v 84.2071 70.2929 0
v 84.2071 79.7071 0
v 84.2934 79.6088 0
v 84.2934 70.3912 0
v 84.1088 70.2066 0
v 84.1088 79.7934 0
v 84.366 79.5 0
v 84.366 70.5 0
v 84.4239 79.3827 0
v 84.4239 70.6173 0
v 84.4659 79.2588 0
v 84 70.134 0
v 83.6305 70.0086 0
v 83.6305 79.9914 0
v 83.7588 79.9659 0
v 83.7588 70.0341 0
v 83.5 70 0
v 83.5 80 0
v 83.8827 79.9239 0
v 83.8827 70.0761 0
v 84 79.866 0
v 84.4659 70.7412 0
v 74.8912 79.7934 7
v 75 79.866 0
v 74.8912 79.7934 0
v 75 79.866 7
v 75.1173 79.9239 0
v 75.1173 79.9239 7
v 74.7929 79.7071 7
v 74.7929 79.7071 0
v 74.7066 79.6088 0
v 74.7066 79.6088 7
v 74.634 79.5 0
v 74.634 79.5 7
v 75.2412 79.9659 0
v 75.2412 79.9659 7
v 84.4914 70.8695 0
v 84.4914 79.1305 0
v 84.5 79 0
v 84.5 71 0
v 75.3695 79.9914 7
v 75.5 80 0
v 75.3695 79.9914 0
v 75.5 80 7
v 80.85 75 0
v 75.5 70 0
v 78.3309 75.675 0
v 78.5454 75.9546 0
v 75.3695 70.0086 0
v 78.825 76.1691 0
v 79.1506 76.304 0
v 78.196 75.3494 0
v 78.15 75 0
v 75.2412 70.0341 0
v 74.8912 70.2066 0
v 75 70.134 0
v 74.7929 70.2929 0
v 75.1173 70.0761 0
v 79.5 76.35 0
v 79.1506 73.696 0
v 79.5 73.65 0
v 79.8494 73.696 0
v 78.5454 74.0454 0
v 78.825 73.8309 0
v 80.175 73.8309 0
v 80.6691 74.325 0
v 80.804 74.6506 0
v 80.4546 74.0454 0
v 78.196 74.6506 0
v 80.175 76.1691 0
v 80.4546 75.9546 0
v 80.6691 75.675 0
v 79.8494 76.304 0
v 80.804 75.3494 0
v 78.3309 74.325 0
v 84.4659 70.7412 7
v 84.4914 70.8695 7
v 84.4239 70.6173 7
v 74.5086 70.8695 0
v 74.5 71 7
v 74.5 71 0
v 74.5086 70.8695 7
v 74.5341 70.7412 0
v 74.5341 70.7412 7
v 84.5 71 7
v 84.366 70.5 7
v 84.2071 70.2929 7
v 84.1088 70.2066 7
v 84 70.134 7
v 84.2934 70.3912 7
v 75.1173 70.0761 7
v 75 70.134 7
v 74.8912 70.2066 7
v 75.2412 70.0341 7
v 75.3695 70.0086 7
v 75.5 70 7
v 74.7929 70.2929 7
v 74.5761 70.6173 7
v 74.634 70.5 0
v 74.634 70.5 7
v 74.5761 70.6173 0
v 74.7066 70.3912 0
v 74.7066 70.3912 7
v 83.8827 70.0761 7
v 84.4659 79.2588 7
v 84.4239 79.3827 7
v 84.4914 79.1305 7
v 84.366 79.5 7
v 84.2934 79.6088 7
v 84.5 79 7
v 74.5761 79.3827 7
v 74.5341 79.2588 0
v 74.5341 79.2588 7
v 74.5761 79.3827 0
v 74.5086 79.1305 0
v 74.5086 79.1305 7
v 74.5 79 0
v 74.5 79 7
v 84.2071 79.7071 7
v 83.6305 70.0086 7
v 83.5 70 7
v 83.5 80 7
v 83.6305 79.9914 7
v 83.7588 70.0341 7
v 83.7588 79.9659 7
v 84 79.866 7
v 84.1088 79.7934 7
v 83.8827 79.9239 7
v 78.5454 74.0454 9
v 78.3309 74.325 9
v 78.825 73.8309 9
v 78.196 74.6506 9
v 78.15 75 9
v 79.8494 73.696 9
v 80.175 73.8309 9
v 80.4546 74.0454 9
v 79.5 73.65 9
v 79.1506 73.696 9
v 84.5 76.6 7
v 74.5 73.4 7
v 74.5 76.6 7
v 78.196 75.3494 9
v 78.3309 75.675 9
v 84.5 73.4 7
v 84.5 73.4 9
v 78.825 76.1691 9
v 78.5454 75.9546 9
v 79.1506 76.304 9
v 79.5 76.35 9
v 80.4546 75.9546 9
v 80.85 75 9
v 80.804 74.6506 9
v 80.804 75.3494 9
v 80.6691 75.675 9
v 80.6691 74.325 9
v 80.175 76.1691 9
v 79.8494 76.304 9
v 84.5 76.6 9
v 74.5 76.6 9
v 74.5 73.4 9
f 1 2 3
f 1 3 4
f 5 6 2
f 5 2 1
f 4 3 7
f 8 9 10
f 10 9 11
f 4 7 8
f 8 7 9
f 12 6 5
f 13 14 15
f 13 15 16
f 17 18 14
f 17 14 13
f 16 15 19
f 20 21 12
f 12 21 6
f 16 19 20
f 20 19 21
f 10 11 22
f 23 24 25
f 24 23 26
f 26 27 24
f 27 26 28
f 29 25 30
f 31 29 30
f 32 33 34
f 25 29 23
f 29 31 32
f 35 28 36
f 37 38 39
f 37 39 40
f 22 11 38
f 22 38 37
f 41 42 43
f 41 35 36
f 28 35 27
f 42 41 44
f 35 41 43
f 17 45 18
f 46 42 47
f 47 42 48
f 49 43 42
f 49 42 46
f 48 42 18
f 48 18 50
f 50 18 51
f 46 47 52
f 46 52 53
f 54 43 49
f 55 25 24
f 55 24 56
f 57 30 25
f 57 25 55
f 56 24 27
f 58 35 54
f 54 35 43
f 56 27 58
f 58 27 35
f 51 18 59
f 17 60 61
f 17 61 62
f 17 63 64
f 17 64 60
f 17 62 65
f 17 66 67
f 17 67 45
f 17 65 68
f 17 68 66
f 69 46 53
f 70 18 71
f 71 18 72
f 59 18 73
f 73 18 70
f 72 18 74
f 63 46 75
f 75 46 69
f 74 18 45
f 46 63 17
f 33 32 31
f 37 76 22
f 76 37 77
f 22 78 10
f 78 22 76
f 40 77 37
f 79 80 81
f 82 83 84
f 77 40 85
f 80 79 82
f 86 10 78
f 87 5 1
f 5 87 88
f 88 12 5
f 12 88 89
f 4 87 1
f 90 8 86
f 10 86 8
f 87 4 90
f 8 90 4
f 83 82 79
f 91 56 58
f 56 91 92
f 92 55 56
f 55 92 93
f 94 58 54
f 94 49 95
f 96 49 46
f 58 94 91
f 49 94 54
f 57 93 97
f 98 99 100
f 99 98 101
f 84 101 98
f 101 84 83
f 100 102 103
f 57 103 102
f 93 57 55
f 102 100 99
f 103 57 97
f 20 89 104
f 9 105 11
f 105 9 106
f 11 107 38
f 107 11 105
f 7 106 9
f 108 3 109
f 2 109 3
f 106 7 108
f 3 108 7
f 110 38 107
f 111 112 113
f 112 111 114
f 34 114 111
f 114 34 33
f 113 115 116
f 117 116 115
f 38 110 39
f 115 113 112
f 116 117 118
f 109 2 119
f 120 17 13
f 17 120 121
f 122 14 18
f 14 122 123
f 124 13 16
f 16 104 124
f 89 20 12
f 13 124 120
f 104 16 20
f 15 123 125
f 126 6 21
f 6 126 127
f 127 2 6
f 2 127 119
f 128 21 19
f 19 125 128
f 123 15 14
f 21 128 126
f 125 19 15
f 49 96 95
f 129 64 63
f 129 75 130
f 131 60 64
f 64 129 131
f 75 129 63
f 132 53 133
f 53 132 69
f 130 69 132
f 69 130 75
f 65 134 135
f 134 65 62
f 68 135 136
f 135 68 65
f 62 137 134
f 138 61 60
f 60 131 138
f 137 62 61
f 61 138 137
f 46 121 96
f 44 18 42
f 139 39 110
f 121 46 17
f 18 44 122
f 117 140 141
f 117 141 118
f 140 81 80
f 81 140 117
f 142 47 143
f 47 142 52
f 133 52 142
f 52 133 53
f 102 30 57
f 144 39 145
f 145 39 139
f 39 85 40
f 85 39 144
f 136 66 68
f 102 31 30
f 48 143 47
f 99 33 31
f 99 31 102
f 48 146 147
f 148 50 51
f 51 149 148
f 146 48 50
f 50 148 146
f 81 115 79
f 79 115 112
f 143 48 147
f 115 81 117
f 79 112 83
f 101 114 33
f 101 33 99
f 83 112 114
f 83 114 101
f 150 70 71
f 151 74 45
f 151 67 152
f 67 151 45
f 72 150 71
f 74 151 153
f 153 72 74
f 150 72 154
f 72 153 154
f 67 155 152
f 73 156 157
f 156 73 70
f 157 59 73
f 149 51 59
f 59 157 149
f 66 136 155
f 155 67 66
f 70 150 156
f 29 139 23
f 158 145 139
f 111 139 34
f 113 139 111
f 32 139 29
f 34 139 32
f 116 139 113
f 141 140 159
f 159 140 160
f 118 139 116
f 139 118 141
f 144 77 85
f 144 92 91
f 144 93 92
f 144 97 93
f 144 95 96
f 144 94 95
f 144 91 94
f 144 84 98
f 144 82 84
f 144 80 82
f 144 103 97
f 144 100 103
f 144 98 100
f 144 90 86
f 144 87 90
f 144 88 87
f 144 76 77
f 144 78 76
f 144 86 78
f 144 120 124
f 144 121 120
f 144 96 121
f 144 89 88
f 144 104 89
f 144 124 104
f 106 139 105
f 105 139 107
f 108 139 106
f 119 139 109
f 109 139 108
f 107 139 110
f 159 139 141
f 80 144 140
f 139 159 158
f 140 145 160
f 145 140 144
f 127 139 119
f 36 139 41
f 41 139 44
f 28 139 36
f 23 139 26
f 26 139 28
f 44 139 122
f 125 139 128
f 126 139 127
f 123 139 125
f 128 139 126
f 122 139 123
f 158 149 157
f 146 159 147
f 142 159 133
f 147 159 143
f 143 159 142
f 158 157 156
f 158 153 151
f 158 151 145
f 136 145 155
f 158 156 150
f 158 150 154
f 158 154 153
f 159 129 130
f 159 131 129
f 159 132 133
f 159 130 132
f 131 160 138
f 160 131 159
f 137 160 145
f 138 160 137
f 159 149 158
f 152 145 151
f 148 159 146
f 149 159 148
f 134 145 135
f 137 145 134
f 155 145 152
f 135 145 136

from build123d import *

# Parameters (mm, degrees)
BOSS_EXTRUDE1_DEPTH = 7
SKETCH2_W           = 9.999992371
SKETCH2_H           = 3.199996948
BOSS_EXTRUDE2_DEPTH = 2
CUT_EXTRUDE1_DEPTH  = 117.710110959


with BuildPart() as part:
    # Sketch1 → Boss-Extrude1 (new body)
    with BuildSketch(Plane.XY.offset(7)):
        Polygon((84.366027832, 79.5), (84.293357849, 79.608764648), (84.207107544, 79.707107544), (84.108764648, 79.79335022), (84, 79.866027832), (83.88269043, 79.923881531), (83.75881958, 79.965927124), (83.630531311, 79.991447449), (83.5, 80), (75.500007629, 80), (75.369476318, 79.991447449), (75.241188049, 79.965927124), (75.1173172, 79.923881531), (75.000007629, 79.866027832), (74.891242981, 79.79335022), (74.792900085, 79.707107544), (74.70664978, 79.608764648), (74.633979797, 79.5), (74.576126099, 79.3826828), (74.534080505, 79.25881958), (74.508560181, 79.130523682), (74.500007629, 79), (74.500007629, 71), (74.508560181, 70.869476318), (74.534080505, 70.74118042), (74.576126099, 70.6173172), (74.633979797, 70.5), (74.70664978, 70.391235352), (74.792900085, 70.292892456), (74.891242981, 70.20664978), (75.000007629, 70.133972168), (75.1173172, 70.076118469), (75.241188049, 70.034072876), (75.369476318, 70.008552551), (75.500007629, 70), (83.5, 70), (83.630531311, 70.008552551), (83.75881958, 70.034072876), (83.88269043, 70.076118469), (84, 70.133972168), (84.108764648, 70.20664978), (84.207107544, 70.292892456), (84.293357849, 70.391235352), (84.366027832, 70.5), (84.423881531, 70.6173172), (84.465927124, 70.74118042), (84.491447449, 70.869476318), (84.5, 71), (84.5, 79), (84.491447449, 79.130523682), (84.465927124, 79.25881958), (84.423881531, 79.3826828), align=None)
    extrude(amount=-BOSS_EXTRUDE1_DEPTH)

    # Sketch2 → Boss-Extrude2 (add)
    with BuildSketch(Plane.XY.offset(7)):
        with Locations((79.500003815, 75)):
            Rectangle(SKETCH2_W, SKETCH2_H)
    extrude(amount=BOSS_EXTRUDE2_DEPTH)

    # Sketch3 → Cut-Extrude1 (cut, through all)
    with BuildSketch(Plane(origin=(0, 0, 0), x_dir=(-1, 0, 0), z_dir=(0, 0, -1))):
        Polygon((-80.454597473, 75.954597473), (-80.669136047, 75.675003052), (-80.804000854, 75.349403381), (-80.850006104, 75), (-80.804000854, 74.650596619), (-80.669136047, 74.324996948), (-80.454597473, 74.045402527), (-80.175003052, 73.830863953), (-79.849411011, 73.695999146), (-79.500007629, 73.650001526), (-79.150596619, 73.695999146), (-78.825004578, 73.830863953), (-78.545410156, 74.045402527), (-78.330871582, 74.324996948), (-78.196006775, 74.650596619), (-78.150001526, 75), (-78.196006775, 75.349403381), (-78.330871582, 75.675003052), (-78.545410156, 75.954597473), (-78.825004578, 76.169136047), (-79.150596619, 76.304000854), (-79.500007629, 76.349998474), (-79.849411011, 76.304000854), (-80.175003052, 76.169136047), align=None)
    extrude(amount=-CUT_EXTRUDE1_DEPTH, mode=Mode.SUBTRACT)


solid = part.part
